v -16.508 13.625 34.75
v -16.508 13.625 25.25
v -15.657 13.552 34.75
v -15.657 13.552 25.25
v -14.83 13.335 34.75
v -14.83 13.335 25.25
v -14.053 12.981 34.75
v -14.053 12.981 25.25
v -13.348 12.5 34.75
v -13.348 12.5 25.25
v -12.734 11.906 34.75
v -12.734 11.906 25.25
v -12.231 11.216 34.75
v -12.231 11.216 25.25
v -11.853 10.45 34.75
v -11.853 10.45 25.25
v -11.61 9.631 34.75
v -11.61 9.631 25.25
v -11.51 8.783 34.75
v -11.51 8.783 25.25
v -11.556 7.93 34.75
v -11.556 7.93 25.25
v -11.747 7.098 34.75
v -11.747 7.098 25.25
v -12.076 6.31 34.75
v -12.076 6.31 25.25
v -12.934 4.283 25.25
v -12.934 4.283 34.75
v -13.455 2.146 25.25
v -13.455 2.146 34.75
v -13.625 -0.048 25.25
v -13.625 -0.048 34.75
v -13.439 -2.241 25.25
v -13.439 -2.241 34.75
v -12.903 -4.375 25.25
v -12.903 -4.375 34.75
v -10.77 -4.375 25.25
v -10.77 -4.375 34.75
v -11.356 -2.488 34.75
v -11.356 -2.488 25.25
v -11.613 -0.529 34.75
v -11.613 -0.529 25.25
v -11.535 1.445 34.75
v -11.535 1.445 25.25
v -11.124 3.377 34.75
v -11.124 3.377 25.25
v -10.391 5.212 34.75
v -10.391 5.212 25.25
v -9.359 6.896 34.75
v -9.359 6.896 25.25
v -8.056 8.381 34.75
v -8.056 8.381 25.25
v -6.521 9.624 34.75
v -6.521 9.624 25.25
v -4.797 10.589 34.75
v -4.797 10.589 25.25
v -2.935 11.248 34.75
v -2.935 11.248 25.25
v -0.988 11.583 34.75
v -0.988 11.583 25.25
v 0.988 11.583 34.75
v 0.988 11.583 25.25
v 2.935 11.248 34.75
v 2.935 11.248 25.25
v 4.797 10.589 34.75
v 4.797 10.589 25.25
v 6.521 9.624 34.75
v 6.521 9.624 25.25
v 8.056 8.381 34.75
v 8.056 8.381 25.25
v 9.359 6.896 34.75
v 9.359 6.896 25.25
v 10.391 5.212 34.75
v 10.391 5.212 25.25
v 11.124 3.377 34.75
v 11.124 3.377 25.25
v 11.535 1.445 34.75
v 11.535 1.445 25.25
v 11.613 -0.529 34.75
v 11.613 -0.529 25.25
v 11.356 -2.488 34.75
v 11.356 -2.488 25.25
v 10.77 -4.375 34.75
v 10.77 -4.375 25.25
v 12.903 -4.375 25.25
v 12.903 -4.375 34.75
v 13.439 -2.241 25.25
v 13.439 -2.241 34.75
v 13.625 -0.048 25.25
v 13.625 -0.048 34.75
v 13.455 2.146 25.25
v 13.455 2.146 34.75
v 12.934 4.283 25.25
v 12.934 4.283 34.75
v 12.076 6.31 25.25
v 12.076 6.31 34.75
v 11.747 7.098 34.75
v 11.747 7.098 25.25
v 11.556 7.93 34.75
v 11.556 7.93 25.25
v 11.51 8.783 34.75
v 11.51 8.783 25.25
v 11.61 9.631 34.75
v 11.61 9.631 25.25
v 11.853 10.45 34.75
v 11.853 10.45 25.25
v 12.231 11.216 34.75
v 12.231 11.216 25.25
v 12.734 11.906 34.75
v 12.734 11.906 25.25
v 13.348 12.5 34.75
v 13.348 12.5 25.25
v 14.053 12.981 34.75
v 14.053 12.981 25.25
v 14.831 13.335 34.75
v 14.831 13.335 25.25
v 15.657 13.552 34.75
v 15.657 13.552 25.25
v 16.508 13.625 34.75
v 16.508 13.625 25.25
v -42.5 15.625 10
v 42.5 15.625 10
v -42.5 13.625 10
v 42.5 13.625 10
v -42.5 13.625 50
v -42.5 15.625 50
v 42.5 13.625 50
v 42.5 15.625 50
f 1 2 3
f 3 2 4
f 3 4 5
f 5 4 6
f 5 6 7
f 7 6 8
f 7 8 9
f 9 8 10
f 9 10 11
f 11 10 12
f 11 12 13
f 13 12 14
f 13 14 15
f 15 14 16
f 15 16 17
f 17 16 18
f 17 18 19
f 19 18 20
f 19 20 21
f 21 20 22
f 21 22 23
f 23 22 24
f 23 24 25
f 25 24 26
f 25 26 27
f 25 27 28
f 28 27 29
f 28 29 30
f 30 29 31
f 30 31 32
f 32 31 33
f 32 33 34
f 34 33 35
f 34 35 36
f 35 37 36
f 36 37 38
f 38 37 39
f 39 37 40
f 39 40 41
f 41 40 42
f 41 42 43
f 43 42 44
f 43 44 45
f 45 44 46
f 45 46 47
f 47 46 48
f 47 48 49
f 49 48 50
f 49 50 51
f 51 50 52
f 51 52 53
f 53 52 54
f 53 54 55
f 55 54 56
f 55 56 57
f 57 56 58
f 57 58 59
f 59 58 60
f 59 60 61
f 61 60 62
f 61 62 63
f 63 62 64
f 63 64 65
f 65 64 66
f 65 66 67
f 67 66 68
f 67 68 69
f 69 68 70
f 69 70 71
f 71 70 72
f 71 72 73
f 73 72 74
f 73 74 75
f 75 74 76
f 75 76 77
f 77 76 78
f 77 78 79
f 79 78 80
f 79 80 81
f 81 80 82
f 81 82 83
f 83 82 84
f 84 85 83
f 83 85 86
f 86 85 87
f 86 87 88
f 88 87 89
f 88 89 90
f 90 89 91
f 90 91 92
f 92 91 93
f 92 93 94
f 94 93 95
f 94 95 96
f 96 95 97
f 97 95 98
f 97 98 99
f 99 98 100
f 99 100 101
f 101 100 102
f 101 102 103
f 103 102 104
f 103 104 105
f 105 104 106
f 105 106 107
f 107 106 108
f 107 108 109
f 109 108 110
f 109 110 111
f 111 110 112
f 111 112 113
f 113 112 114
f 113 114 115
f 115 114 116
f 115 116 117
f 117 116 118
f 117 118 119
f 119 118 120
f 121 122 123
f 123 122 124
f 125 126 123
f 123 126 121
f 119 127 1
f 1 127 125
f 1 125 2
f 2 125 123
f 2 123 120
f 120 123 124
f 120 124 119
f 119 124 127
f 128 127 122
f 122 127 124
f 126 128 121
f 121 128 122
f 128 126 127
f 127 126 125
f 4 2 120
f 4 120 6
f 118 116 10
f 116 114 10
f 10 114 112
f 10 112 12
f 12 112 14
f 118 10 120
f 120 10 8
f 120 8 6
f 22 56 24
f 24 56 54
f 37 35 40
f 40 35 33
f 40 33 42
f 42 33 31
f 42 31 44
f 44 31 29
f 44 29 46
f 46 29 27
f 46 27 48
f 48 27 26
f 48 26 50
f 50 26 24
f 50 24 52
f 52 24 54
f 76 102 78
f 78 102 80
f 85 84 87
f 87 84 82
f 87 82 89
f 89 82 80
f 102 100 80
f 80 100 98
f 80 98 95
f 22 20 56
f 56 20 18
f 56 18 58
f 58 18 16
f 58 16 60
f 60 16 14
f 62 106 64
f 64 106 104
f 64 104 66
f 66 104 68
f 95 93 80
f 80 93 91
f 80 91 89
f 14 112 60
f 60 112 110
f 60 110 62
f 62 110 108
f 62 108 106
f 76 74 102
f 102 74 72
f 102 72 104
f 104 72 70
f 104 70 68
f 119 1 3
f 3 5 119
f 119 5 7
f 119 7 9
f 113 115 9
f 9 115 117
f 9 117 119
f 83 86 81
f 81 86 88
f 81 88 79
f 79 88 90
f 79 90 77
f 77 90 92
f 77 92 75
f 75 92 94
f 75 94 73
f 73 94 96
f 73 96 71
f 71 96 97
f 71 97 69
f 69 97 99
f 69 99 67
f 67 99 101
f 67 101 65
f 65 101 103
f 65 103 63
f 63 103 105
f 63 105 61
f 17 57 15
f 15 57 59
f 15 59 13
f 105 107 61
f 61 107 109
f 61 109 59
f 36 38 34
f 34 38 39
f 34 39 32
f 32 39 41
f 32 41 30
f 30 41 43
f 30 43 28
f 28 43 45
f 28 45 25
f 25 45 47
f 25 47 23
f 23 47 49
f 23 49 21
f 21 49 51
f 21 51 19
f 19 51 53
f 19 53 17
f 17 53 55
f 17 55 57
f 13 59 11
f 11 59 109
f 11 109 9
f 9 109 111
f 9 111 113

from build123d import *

# Parameters (mm, degrees)
SKETCH1_R           = 11.125
SKETCH1_R_2         = 9.125
BOSS_EXTRUDE1_DEPTH = 10
BOSS_EXTRUDE2_START = -10
BOSS_EXTRUDE2_DEPTH = 10
BOSS_EXTRUDE3_DEPTH = 40
SKETCH4_W           = 57.687127484
SKETCH4_H           = 15.25
SKETCH4_W_2         = 54.293767044
CUT_EXTRUDE1_DEPTH  = 42
SKETCH5_W           = 53.119142276
SKETCH5_H           = 26.885855795
CUT_EXTRUDE2_DEPTH  = 61


with BuildPart() as part:
    # Sketch1 → Boss-Extrude1 (new body)
    with BuildSketch(Plane.XY):
        Circle(SKETCH1_R)
        Circle(SKETCH1_R_2, mode=Mode.SUBTRACT)
    extrude(amount=BOSS_EXTRUDE1_DEPTH)

    # Sketch2 → Boss-Extrude2 (add)
    with BuildSketch(Plane.XY.offset(10).offset(BOSS_EXTRUDE2_START)):
        with BuildLine():
            Line((-9.125, -9.125), (-6.363961031, -9.125))
            ThreePointArc((-6.363961031, -9.125), (-7.866562941, -7.866562941), (-9.125, -6.363961031))
            Line((-9.125, -6.363961031), (-9.125, -9.125))
        make_face()
        with BuildLine():
            Line((-9.125, -11.125), (0, -11.125))
            ThreePointArc((0, -11.125), (-3.335416016, -10.613228774), (-6.363961031, -9.125))
            Line((-6.363961031, -9.125), (-9.125, -9.125))
            Line((-9.125, -9.125), (-9.125, -11.125))
        make_face()
        with BuildLine():
            Line((0, -11.125), (9.125, -11.125))
            Line((9.125, -11.125), (9.125, -9.125))
            Line((9.125, -9.125), (6.363961031, -9.125))
            ThreePointArc((6.363961031, -9.125), (3.335416016, -10.613228774), (0, -11.125))
        make_face()
        with BuildLine():
            Line((6.363961031, -9.125), (9.125, -9.125))
            Line((9.125, -9.125), (9.125, -6.363961031))
            ThreePointArc((9.125, -6.363961031), (7.866562941, -7.866562941), (6.363961031, -9.125))
        make_face()
    extrude(amount=BOSS_EXTRUDE2_DEPTH)

    # Sketch5 → Cut-Extrude2 (cut)
    with BuildSketch(Plane.XZ.offset(-13.625)):
        with Locations((1.239881699, 2.094817028)):
            Rectangle(SKETCH5_W, SKETCH5_H)
    extrude(amount=CUT_EXTRUDE2_DEPTH, mode=Mode.SUBTRACT)


with BuildPart() as body_2:
    # Sketch3 → Boss-Extrude3 (new body)
    with BuildSketch(Plane.XY.offset(10)):
        with BuildLine():
            Line((12.903487901, -4.375), (10.770329614, -4.375))
            ThreePointArc((10.770329614, -4.375), (0, 11.625), (-10.770329614, -4.375))
            Line((-10.770329614, -4.375), (-12.903487901, -4.375))
            ThreePointArc((-12.903487901, -4.375), (-13.584322253, 1.05205225), (-12.076010524, 6.309563758))
            ThreePointArc((-12.076010524, 6.309563758), (-12.231057843, 11.215638801), (-16.507574019, 13.625))
            Line((-16.507574019, 13.625), (-42.5, 13.625))
            Line((-42.5, 13.625), (-42.5, 15.625))
            Line((-42.5, 15.625), (42.5, 15.625))
            Line((42.5, 15.625), (42.5, 13.625))
            Line((42.5, 13.625), (16.507574019, 13.625))
            ThreePointArc((16.507574019, 13.625), (12.231057843, 11.215638801), (12.076010524, 6.309563758))
            ThreePointArc((12.076010524, 6.309563758), (13.584322253, 1.05205225), (12.903487901, -4.375))
        make_face()
    extrude(amount=BOSS_EXTRUDE3_DEPTH)

    # Sketch4 → Cut-Extrude1 (cut)
    with BuildSketch(Plane.XZ.offset(-13.625)):
        with Locations((1.827194083, 42.375)):
            Rectangle(SKETCH4_W, SKETCH4_H)
        with Locations((0.130513863, 17.625)):
            Rectangle(SKETCH4_W_2, SKETCH4_H)
    extrude(amount=CUT_EXTRUDE1_DEPTH, mode=Mode.SUBTRACT)


solid = body_2.part
